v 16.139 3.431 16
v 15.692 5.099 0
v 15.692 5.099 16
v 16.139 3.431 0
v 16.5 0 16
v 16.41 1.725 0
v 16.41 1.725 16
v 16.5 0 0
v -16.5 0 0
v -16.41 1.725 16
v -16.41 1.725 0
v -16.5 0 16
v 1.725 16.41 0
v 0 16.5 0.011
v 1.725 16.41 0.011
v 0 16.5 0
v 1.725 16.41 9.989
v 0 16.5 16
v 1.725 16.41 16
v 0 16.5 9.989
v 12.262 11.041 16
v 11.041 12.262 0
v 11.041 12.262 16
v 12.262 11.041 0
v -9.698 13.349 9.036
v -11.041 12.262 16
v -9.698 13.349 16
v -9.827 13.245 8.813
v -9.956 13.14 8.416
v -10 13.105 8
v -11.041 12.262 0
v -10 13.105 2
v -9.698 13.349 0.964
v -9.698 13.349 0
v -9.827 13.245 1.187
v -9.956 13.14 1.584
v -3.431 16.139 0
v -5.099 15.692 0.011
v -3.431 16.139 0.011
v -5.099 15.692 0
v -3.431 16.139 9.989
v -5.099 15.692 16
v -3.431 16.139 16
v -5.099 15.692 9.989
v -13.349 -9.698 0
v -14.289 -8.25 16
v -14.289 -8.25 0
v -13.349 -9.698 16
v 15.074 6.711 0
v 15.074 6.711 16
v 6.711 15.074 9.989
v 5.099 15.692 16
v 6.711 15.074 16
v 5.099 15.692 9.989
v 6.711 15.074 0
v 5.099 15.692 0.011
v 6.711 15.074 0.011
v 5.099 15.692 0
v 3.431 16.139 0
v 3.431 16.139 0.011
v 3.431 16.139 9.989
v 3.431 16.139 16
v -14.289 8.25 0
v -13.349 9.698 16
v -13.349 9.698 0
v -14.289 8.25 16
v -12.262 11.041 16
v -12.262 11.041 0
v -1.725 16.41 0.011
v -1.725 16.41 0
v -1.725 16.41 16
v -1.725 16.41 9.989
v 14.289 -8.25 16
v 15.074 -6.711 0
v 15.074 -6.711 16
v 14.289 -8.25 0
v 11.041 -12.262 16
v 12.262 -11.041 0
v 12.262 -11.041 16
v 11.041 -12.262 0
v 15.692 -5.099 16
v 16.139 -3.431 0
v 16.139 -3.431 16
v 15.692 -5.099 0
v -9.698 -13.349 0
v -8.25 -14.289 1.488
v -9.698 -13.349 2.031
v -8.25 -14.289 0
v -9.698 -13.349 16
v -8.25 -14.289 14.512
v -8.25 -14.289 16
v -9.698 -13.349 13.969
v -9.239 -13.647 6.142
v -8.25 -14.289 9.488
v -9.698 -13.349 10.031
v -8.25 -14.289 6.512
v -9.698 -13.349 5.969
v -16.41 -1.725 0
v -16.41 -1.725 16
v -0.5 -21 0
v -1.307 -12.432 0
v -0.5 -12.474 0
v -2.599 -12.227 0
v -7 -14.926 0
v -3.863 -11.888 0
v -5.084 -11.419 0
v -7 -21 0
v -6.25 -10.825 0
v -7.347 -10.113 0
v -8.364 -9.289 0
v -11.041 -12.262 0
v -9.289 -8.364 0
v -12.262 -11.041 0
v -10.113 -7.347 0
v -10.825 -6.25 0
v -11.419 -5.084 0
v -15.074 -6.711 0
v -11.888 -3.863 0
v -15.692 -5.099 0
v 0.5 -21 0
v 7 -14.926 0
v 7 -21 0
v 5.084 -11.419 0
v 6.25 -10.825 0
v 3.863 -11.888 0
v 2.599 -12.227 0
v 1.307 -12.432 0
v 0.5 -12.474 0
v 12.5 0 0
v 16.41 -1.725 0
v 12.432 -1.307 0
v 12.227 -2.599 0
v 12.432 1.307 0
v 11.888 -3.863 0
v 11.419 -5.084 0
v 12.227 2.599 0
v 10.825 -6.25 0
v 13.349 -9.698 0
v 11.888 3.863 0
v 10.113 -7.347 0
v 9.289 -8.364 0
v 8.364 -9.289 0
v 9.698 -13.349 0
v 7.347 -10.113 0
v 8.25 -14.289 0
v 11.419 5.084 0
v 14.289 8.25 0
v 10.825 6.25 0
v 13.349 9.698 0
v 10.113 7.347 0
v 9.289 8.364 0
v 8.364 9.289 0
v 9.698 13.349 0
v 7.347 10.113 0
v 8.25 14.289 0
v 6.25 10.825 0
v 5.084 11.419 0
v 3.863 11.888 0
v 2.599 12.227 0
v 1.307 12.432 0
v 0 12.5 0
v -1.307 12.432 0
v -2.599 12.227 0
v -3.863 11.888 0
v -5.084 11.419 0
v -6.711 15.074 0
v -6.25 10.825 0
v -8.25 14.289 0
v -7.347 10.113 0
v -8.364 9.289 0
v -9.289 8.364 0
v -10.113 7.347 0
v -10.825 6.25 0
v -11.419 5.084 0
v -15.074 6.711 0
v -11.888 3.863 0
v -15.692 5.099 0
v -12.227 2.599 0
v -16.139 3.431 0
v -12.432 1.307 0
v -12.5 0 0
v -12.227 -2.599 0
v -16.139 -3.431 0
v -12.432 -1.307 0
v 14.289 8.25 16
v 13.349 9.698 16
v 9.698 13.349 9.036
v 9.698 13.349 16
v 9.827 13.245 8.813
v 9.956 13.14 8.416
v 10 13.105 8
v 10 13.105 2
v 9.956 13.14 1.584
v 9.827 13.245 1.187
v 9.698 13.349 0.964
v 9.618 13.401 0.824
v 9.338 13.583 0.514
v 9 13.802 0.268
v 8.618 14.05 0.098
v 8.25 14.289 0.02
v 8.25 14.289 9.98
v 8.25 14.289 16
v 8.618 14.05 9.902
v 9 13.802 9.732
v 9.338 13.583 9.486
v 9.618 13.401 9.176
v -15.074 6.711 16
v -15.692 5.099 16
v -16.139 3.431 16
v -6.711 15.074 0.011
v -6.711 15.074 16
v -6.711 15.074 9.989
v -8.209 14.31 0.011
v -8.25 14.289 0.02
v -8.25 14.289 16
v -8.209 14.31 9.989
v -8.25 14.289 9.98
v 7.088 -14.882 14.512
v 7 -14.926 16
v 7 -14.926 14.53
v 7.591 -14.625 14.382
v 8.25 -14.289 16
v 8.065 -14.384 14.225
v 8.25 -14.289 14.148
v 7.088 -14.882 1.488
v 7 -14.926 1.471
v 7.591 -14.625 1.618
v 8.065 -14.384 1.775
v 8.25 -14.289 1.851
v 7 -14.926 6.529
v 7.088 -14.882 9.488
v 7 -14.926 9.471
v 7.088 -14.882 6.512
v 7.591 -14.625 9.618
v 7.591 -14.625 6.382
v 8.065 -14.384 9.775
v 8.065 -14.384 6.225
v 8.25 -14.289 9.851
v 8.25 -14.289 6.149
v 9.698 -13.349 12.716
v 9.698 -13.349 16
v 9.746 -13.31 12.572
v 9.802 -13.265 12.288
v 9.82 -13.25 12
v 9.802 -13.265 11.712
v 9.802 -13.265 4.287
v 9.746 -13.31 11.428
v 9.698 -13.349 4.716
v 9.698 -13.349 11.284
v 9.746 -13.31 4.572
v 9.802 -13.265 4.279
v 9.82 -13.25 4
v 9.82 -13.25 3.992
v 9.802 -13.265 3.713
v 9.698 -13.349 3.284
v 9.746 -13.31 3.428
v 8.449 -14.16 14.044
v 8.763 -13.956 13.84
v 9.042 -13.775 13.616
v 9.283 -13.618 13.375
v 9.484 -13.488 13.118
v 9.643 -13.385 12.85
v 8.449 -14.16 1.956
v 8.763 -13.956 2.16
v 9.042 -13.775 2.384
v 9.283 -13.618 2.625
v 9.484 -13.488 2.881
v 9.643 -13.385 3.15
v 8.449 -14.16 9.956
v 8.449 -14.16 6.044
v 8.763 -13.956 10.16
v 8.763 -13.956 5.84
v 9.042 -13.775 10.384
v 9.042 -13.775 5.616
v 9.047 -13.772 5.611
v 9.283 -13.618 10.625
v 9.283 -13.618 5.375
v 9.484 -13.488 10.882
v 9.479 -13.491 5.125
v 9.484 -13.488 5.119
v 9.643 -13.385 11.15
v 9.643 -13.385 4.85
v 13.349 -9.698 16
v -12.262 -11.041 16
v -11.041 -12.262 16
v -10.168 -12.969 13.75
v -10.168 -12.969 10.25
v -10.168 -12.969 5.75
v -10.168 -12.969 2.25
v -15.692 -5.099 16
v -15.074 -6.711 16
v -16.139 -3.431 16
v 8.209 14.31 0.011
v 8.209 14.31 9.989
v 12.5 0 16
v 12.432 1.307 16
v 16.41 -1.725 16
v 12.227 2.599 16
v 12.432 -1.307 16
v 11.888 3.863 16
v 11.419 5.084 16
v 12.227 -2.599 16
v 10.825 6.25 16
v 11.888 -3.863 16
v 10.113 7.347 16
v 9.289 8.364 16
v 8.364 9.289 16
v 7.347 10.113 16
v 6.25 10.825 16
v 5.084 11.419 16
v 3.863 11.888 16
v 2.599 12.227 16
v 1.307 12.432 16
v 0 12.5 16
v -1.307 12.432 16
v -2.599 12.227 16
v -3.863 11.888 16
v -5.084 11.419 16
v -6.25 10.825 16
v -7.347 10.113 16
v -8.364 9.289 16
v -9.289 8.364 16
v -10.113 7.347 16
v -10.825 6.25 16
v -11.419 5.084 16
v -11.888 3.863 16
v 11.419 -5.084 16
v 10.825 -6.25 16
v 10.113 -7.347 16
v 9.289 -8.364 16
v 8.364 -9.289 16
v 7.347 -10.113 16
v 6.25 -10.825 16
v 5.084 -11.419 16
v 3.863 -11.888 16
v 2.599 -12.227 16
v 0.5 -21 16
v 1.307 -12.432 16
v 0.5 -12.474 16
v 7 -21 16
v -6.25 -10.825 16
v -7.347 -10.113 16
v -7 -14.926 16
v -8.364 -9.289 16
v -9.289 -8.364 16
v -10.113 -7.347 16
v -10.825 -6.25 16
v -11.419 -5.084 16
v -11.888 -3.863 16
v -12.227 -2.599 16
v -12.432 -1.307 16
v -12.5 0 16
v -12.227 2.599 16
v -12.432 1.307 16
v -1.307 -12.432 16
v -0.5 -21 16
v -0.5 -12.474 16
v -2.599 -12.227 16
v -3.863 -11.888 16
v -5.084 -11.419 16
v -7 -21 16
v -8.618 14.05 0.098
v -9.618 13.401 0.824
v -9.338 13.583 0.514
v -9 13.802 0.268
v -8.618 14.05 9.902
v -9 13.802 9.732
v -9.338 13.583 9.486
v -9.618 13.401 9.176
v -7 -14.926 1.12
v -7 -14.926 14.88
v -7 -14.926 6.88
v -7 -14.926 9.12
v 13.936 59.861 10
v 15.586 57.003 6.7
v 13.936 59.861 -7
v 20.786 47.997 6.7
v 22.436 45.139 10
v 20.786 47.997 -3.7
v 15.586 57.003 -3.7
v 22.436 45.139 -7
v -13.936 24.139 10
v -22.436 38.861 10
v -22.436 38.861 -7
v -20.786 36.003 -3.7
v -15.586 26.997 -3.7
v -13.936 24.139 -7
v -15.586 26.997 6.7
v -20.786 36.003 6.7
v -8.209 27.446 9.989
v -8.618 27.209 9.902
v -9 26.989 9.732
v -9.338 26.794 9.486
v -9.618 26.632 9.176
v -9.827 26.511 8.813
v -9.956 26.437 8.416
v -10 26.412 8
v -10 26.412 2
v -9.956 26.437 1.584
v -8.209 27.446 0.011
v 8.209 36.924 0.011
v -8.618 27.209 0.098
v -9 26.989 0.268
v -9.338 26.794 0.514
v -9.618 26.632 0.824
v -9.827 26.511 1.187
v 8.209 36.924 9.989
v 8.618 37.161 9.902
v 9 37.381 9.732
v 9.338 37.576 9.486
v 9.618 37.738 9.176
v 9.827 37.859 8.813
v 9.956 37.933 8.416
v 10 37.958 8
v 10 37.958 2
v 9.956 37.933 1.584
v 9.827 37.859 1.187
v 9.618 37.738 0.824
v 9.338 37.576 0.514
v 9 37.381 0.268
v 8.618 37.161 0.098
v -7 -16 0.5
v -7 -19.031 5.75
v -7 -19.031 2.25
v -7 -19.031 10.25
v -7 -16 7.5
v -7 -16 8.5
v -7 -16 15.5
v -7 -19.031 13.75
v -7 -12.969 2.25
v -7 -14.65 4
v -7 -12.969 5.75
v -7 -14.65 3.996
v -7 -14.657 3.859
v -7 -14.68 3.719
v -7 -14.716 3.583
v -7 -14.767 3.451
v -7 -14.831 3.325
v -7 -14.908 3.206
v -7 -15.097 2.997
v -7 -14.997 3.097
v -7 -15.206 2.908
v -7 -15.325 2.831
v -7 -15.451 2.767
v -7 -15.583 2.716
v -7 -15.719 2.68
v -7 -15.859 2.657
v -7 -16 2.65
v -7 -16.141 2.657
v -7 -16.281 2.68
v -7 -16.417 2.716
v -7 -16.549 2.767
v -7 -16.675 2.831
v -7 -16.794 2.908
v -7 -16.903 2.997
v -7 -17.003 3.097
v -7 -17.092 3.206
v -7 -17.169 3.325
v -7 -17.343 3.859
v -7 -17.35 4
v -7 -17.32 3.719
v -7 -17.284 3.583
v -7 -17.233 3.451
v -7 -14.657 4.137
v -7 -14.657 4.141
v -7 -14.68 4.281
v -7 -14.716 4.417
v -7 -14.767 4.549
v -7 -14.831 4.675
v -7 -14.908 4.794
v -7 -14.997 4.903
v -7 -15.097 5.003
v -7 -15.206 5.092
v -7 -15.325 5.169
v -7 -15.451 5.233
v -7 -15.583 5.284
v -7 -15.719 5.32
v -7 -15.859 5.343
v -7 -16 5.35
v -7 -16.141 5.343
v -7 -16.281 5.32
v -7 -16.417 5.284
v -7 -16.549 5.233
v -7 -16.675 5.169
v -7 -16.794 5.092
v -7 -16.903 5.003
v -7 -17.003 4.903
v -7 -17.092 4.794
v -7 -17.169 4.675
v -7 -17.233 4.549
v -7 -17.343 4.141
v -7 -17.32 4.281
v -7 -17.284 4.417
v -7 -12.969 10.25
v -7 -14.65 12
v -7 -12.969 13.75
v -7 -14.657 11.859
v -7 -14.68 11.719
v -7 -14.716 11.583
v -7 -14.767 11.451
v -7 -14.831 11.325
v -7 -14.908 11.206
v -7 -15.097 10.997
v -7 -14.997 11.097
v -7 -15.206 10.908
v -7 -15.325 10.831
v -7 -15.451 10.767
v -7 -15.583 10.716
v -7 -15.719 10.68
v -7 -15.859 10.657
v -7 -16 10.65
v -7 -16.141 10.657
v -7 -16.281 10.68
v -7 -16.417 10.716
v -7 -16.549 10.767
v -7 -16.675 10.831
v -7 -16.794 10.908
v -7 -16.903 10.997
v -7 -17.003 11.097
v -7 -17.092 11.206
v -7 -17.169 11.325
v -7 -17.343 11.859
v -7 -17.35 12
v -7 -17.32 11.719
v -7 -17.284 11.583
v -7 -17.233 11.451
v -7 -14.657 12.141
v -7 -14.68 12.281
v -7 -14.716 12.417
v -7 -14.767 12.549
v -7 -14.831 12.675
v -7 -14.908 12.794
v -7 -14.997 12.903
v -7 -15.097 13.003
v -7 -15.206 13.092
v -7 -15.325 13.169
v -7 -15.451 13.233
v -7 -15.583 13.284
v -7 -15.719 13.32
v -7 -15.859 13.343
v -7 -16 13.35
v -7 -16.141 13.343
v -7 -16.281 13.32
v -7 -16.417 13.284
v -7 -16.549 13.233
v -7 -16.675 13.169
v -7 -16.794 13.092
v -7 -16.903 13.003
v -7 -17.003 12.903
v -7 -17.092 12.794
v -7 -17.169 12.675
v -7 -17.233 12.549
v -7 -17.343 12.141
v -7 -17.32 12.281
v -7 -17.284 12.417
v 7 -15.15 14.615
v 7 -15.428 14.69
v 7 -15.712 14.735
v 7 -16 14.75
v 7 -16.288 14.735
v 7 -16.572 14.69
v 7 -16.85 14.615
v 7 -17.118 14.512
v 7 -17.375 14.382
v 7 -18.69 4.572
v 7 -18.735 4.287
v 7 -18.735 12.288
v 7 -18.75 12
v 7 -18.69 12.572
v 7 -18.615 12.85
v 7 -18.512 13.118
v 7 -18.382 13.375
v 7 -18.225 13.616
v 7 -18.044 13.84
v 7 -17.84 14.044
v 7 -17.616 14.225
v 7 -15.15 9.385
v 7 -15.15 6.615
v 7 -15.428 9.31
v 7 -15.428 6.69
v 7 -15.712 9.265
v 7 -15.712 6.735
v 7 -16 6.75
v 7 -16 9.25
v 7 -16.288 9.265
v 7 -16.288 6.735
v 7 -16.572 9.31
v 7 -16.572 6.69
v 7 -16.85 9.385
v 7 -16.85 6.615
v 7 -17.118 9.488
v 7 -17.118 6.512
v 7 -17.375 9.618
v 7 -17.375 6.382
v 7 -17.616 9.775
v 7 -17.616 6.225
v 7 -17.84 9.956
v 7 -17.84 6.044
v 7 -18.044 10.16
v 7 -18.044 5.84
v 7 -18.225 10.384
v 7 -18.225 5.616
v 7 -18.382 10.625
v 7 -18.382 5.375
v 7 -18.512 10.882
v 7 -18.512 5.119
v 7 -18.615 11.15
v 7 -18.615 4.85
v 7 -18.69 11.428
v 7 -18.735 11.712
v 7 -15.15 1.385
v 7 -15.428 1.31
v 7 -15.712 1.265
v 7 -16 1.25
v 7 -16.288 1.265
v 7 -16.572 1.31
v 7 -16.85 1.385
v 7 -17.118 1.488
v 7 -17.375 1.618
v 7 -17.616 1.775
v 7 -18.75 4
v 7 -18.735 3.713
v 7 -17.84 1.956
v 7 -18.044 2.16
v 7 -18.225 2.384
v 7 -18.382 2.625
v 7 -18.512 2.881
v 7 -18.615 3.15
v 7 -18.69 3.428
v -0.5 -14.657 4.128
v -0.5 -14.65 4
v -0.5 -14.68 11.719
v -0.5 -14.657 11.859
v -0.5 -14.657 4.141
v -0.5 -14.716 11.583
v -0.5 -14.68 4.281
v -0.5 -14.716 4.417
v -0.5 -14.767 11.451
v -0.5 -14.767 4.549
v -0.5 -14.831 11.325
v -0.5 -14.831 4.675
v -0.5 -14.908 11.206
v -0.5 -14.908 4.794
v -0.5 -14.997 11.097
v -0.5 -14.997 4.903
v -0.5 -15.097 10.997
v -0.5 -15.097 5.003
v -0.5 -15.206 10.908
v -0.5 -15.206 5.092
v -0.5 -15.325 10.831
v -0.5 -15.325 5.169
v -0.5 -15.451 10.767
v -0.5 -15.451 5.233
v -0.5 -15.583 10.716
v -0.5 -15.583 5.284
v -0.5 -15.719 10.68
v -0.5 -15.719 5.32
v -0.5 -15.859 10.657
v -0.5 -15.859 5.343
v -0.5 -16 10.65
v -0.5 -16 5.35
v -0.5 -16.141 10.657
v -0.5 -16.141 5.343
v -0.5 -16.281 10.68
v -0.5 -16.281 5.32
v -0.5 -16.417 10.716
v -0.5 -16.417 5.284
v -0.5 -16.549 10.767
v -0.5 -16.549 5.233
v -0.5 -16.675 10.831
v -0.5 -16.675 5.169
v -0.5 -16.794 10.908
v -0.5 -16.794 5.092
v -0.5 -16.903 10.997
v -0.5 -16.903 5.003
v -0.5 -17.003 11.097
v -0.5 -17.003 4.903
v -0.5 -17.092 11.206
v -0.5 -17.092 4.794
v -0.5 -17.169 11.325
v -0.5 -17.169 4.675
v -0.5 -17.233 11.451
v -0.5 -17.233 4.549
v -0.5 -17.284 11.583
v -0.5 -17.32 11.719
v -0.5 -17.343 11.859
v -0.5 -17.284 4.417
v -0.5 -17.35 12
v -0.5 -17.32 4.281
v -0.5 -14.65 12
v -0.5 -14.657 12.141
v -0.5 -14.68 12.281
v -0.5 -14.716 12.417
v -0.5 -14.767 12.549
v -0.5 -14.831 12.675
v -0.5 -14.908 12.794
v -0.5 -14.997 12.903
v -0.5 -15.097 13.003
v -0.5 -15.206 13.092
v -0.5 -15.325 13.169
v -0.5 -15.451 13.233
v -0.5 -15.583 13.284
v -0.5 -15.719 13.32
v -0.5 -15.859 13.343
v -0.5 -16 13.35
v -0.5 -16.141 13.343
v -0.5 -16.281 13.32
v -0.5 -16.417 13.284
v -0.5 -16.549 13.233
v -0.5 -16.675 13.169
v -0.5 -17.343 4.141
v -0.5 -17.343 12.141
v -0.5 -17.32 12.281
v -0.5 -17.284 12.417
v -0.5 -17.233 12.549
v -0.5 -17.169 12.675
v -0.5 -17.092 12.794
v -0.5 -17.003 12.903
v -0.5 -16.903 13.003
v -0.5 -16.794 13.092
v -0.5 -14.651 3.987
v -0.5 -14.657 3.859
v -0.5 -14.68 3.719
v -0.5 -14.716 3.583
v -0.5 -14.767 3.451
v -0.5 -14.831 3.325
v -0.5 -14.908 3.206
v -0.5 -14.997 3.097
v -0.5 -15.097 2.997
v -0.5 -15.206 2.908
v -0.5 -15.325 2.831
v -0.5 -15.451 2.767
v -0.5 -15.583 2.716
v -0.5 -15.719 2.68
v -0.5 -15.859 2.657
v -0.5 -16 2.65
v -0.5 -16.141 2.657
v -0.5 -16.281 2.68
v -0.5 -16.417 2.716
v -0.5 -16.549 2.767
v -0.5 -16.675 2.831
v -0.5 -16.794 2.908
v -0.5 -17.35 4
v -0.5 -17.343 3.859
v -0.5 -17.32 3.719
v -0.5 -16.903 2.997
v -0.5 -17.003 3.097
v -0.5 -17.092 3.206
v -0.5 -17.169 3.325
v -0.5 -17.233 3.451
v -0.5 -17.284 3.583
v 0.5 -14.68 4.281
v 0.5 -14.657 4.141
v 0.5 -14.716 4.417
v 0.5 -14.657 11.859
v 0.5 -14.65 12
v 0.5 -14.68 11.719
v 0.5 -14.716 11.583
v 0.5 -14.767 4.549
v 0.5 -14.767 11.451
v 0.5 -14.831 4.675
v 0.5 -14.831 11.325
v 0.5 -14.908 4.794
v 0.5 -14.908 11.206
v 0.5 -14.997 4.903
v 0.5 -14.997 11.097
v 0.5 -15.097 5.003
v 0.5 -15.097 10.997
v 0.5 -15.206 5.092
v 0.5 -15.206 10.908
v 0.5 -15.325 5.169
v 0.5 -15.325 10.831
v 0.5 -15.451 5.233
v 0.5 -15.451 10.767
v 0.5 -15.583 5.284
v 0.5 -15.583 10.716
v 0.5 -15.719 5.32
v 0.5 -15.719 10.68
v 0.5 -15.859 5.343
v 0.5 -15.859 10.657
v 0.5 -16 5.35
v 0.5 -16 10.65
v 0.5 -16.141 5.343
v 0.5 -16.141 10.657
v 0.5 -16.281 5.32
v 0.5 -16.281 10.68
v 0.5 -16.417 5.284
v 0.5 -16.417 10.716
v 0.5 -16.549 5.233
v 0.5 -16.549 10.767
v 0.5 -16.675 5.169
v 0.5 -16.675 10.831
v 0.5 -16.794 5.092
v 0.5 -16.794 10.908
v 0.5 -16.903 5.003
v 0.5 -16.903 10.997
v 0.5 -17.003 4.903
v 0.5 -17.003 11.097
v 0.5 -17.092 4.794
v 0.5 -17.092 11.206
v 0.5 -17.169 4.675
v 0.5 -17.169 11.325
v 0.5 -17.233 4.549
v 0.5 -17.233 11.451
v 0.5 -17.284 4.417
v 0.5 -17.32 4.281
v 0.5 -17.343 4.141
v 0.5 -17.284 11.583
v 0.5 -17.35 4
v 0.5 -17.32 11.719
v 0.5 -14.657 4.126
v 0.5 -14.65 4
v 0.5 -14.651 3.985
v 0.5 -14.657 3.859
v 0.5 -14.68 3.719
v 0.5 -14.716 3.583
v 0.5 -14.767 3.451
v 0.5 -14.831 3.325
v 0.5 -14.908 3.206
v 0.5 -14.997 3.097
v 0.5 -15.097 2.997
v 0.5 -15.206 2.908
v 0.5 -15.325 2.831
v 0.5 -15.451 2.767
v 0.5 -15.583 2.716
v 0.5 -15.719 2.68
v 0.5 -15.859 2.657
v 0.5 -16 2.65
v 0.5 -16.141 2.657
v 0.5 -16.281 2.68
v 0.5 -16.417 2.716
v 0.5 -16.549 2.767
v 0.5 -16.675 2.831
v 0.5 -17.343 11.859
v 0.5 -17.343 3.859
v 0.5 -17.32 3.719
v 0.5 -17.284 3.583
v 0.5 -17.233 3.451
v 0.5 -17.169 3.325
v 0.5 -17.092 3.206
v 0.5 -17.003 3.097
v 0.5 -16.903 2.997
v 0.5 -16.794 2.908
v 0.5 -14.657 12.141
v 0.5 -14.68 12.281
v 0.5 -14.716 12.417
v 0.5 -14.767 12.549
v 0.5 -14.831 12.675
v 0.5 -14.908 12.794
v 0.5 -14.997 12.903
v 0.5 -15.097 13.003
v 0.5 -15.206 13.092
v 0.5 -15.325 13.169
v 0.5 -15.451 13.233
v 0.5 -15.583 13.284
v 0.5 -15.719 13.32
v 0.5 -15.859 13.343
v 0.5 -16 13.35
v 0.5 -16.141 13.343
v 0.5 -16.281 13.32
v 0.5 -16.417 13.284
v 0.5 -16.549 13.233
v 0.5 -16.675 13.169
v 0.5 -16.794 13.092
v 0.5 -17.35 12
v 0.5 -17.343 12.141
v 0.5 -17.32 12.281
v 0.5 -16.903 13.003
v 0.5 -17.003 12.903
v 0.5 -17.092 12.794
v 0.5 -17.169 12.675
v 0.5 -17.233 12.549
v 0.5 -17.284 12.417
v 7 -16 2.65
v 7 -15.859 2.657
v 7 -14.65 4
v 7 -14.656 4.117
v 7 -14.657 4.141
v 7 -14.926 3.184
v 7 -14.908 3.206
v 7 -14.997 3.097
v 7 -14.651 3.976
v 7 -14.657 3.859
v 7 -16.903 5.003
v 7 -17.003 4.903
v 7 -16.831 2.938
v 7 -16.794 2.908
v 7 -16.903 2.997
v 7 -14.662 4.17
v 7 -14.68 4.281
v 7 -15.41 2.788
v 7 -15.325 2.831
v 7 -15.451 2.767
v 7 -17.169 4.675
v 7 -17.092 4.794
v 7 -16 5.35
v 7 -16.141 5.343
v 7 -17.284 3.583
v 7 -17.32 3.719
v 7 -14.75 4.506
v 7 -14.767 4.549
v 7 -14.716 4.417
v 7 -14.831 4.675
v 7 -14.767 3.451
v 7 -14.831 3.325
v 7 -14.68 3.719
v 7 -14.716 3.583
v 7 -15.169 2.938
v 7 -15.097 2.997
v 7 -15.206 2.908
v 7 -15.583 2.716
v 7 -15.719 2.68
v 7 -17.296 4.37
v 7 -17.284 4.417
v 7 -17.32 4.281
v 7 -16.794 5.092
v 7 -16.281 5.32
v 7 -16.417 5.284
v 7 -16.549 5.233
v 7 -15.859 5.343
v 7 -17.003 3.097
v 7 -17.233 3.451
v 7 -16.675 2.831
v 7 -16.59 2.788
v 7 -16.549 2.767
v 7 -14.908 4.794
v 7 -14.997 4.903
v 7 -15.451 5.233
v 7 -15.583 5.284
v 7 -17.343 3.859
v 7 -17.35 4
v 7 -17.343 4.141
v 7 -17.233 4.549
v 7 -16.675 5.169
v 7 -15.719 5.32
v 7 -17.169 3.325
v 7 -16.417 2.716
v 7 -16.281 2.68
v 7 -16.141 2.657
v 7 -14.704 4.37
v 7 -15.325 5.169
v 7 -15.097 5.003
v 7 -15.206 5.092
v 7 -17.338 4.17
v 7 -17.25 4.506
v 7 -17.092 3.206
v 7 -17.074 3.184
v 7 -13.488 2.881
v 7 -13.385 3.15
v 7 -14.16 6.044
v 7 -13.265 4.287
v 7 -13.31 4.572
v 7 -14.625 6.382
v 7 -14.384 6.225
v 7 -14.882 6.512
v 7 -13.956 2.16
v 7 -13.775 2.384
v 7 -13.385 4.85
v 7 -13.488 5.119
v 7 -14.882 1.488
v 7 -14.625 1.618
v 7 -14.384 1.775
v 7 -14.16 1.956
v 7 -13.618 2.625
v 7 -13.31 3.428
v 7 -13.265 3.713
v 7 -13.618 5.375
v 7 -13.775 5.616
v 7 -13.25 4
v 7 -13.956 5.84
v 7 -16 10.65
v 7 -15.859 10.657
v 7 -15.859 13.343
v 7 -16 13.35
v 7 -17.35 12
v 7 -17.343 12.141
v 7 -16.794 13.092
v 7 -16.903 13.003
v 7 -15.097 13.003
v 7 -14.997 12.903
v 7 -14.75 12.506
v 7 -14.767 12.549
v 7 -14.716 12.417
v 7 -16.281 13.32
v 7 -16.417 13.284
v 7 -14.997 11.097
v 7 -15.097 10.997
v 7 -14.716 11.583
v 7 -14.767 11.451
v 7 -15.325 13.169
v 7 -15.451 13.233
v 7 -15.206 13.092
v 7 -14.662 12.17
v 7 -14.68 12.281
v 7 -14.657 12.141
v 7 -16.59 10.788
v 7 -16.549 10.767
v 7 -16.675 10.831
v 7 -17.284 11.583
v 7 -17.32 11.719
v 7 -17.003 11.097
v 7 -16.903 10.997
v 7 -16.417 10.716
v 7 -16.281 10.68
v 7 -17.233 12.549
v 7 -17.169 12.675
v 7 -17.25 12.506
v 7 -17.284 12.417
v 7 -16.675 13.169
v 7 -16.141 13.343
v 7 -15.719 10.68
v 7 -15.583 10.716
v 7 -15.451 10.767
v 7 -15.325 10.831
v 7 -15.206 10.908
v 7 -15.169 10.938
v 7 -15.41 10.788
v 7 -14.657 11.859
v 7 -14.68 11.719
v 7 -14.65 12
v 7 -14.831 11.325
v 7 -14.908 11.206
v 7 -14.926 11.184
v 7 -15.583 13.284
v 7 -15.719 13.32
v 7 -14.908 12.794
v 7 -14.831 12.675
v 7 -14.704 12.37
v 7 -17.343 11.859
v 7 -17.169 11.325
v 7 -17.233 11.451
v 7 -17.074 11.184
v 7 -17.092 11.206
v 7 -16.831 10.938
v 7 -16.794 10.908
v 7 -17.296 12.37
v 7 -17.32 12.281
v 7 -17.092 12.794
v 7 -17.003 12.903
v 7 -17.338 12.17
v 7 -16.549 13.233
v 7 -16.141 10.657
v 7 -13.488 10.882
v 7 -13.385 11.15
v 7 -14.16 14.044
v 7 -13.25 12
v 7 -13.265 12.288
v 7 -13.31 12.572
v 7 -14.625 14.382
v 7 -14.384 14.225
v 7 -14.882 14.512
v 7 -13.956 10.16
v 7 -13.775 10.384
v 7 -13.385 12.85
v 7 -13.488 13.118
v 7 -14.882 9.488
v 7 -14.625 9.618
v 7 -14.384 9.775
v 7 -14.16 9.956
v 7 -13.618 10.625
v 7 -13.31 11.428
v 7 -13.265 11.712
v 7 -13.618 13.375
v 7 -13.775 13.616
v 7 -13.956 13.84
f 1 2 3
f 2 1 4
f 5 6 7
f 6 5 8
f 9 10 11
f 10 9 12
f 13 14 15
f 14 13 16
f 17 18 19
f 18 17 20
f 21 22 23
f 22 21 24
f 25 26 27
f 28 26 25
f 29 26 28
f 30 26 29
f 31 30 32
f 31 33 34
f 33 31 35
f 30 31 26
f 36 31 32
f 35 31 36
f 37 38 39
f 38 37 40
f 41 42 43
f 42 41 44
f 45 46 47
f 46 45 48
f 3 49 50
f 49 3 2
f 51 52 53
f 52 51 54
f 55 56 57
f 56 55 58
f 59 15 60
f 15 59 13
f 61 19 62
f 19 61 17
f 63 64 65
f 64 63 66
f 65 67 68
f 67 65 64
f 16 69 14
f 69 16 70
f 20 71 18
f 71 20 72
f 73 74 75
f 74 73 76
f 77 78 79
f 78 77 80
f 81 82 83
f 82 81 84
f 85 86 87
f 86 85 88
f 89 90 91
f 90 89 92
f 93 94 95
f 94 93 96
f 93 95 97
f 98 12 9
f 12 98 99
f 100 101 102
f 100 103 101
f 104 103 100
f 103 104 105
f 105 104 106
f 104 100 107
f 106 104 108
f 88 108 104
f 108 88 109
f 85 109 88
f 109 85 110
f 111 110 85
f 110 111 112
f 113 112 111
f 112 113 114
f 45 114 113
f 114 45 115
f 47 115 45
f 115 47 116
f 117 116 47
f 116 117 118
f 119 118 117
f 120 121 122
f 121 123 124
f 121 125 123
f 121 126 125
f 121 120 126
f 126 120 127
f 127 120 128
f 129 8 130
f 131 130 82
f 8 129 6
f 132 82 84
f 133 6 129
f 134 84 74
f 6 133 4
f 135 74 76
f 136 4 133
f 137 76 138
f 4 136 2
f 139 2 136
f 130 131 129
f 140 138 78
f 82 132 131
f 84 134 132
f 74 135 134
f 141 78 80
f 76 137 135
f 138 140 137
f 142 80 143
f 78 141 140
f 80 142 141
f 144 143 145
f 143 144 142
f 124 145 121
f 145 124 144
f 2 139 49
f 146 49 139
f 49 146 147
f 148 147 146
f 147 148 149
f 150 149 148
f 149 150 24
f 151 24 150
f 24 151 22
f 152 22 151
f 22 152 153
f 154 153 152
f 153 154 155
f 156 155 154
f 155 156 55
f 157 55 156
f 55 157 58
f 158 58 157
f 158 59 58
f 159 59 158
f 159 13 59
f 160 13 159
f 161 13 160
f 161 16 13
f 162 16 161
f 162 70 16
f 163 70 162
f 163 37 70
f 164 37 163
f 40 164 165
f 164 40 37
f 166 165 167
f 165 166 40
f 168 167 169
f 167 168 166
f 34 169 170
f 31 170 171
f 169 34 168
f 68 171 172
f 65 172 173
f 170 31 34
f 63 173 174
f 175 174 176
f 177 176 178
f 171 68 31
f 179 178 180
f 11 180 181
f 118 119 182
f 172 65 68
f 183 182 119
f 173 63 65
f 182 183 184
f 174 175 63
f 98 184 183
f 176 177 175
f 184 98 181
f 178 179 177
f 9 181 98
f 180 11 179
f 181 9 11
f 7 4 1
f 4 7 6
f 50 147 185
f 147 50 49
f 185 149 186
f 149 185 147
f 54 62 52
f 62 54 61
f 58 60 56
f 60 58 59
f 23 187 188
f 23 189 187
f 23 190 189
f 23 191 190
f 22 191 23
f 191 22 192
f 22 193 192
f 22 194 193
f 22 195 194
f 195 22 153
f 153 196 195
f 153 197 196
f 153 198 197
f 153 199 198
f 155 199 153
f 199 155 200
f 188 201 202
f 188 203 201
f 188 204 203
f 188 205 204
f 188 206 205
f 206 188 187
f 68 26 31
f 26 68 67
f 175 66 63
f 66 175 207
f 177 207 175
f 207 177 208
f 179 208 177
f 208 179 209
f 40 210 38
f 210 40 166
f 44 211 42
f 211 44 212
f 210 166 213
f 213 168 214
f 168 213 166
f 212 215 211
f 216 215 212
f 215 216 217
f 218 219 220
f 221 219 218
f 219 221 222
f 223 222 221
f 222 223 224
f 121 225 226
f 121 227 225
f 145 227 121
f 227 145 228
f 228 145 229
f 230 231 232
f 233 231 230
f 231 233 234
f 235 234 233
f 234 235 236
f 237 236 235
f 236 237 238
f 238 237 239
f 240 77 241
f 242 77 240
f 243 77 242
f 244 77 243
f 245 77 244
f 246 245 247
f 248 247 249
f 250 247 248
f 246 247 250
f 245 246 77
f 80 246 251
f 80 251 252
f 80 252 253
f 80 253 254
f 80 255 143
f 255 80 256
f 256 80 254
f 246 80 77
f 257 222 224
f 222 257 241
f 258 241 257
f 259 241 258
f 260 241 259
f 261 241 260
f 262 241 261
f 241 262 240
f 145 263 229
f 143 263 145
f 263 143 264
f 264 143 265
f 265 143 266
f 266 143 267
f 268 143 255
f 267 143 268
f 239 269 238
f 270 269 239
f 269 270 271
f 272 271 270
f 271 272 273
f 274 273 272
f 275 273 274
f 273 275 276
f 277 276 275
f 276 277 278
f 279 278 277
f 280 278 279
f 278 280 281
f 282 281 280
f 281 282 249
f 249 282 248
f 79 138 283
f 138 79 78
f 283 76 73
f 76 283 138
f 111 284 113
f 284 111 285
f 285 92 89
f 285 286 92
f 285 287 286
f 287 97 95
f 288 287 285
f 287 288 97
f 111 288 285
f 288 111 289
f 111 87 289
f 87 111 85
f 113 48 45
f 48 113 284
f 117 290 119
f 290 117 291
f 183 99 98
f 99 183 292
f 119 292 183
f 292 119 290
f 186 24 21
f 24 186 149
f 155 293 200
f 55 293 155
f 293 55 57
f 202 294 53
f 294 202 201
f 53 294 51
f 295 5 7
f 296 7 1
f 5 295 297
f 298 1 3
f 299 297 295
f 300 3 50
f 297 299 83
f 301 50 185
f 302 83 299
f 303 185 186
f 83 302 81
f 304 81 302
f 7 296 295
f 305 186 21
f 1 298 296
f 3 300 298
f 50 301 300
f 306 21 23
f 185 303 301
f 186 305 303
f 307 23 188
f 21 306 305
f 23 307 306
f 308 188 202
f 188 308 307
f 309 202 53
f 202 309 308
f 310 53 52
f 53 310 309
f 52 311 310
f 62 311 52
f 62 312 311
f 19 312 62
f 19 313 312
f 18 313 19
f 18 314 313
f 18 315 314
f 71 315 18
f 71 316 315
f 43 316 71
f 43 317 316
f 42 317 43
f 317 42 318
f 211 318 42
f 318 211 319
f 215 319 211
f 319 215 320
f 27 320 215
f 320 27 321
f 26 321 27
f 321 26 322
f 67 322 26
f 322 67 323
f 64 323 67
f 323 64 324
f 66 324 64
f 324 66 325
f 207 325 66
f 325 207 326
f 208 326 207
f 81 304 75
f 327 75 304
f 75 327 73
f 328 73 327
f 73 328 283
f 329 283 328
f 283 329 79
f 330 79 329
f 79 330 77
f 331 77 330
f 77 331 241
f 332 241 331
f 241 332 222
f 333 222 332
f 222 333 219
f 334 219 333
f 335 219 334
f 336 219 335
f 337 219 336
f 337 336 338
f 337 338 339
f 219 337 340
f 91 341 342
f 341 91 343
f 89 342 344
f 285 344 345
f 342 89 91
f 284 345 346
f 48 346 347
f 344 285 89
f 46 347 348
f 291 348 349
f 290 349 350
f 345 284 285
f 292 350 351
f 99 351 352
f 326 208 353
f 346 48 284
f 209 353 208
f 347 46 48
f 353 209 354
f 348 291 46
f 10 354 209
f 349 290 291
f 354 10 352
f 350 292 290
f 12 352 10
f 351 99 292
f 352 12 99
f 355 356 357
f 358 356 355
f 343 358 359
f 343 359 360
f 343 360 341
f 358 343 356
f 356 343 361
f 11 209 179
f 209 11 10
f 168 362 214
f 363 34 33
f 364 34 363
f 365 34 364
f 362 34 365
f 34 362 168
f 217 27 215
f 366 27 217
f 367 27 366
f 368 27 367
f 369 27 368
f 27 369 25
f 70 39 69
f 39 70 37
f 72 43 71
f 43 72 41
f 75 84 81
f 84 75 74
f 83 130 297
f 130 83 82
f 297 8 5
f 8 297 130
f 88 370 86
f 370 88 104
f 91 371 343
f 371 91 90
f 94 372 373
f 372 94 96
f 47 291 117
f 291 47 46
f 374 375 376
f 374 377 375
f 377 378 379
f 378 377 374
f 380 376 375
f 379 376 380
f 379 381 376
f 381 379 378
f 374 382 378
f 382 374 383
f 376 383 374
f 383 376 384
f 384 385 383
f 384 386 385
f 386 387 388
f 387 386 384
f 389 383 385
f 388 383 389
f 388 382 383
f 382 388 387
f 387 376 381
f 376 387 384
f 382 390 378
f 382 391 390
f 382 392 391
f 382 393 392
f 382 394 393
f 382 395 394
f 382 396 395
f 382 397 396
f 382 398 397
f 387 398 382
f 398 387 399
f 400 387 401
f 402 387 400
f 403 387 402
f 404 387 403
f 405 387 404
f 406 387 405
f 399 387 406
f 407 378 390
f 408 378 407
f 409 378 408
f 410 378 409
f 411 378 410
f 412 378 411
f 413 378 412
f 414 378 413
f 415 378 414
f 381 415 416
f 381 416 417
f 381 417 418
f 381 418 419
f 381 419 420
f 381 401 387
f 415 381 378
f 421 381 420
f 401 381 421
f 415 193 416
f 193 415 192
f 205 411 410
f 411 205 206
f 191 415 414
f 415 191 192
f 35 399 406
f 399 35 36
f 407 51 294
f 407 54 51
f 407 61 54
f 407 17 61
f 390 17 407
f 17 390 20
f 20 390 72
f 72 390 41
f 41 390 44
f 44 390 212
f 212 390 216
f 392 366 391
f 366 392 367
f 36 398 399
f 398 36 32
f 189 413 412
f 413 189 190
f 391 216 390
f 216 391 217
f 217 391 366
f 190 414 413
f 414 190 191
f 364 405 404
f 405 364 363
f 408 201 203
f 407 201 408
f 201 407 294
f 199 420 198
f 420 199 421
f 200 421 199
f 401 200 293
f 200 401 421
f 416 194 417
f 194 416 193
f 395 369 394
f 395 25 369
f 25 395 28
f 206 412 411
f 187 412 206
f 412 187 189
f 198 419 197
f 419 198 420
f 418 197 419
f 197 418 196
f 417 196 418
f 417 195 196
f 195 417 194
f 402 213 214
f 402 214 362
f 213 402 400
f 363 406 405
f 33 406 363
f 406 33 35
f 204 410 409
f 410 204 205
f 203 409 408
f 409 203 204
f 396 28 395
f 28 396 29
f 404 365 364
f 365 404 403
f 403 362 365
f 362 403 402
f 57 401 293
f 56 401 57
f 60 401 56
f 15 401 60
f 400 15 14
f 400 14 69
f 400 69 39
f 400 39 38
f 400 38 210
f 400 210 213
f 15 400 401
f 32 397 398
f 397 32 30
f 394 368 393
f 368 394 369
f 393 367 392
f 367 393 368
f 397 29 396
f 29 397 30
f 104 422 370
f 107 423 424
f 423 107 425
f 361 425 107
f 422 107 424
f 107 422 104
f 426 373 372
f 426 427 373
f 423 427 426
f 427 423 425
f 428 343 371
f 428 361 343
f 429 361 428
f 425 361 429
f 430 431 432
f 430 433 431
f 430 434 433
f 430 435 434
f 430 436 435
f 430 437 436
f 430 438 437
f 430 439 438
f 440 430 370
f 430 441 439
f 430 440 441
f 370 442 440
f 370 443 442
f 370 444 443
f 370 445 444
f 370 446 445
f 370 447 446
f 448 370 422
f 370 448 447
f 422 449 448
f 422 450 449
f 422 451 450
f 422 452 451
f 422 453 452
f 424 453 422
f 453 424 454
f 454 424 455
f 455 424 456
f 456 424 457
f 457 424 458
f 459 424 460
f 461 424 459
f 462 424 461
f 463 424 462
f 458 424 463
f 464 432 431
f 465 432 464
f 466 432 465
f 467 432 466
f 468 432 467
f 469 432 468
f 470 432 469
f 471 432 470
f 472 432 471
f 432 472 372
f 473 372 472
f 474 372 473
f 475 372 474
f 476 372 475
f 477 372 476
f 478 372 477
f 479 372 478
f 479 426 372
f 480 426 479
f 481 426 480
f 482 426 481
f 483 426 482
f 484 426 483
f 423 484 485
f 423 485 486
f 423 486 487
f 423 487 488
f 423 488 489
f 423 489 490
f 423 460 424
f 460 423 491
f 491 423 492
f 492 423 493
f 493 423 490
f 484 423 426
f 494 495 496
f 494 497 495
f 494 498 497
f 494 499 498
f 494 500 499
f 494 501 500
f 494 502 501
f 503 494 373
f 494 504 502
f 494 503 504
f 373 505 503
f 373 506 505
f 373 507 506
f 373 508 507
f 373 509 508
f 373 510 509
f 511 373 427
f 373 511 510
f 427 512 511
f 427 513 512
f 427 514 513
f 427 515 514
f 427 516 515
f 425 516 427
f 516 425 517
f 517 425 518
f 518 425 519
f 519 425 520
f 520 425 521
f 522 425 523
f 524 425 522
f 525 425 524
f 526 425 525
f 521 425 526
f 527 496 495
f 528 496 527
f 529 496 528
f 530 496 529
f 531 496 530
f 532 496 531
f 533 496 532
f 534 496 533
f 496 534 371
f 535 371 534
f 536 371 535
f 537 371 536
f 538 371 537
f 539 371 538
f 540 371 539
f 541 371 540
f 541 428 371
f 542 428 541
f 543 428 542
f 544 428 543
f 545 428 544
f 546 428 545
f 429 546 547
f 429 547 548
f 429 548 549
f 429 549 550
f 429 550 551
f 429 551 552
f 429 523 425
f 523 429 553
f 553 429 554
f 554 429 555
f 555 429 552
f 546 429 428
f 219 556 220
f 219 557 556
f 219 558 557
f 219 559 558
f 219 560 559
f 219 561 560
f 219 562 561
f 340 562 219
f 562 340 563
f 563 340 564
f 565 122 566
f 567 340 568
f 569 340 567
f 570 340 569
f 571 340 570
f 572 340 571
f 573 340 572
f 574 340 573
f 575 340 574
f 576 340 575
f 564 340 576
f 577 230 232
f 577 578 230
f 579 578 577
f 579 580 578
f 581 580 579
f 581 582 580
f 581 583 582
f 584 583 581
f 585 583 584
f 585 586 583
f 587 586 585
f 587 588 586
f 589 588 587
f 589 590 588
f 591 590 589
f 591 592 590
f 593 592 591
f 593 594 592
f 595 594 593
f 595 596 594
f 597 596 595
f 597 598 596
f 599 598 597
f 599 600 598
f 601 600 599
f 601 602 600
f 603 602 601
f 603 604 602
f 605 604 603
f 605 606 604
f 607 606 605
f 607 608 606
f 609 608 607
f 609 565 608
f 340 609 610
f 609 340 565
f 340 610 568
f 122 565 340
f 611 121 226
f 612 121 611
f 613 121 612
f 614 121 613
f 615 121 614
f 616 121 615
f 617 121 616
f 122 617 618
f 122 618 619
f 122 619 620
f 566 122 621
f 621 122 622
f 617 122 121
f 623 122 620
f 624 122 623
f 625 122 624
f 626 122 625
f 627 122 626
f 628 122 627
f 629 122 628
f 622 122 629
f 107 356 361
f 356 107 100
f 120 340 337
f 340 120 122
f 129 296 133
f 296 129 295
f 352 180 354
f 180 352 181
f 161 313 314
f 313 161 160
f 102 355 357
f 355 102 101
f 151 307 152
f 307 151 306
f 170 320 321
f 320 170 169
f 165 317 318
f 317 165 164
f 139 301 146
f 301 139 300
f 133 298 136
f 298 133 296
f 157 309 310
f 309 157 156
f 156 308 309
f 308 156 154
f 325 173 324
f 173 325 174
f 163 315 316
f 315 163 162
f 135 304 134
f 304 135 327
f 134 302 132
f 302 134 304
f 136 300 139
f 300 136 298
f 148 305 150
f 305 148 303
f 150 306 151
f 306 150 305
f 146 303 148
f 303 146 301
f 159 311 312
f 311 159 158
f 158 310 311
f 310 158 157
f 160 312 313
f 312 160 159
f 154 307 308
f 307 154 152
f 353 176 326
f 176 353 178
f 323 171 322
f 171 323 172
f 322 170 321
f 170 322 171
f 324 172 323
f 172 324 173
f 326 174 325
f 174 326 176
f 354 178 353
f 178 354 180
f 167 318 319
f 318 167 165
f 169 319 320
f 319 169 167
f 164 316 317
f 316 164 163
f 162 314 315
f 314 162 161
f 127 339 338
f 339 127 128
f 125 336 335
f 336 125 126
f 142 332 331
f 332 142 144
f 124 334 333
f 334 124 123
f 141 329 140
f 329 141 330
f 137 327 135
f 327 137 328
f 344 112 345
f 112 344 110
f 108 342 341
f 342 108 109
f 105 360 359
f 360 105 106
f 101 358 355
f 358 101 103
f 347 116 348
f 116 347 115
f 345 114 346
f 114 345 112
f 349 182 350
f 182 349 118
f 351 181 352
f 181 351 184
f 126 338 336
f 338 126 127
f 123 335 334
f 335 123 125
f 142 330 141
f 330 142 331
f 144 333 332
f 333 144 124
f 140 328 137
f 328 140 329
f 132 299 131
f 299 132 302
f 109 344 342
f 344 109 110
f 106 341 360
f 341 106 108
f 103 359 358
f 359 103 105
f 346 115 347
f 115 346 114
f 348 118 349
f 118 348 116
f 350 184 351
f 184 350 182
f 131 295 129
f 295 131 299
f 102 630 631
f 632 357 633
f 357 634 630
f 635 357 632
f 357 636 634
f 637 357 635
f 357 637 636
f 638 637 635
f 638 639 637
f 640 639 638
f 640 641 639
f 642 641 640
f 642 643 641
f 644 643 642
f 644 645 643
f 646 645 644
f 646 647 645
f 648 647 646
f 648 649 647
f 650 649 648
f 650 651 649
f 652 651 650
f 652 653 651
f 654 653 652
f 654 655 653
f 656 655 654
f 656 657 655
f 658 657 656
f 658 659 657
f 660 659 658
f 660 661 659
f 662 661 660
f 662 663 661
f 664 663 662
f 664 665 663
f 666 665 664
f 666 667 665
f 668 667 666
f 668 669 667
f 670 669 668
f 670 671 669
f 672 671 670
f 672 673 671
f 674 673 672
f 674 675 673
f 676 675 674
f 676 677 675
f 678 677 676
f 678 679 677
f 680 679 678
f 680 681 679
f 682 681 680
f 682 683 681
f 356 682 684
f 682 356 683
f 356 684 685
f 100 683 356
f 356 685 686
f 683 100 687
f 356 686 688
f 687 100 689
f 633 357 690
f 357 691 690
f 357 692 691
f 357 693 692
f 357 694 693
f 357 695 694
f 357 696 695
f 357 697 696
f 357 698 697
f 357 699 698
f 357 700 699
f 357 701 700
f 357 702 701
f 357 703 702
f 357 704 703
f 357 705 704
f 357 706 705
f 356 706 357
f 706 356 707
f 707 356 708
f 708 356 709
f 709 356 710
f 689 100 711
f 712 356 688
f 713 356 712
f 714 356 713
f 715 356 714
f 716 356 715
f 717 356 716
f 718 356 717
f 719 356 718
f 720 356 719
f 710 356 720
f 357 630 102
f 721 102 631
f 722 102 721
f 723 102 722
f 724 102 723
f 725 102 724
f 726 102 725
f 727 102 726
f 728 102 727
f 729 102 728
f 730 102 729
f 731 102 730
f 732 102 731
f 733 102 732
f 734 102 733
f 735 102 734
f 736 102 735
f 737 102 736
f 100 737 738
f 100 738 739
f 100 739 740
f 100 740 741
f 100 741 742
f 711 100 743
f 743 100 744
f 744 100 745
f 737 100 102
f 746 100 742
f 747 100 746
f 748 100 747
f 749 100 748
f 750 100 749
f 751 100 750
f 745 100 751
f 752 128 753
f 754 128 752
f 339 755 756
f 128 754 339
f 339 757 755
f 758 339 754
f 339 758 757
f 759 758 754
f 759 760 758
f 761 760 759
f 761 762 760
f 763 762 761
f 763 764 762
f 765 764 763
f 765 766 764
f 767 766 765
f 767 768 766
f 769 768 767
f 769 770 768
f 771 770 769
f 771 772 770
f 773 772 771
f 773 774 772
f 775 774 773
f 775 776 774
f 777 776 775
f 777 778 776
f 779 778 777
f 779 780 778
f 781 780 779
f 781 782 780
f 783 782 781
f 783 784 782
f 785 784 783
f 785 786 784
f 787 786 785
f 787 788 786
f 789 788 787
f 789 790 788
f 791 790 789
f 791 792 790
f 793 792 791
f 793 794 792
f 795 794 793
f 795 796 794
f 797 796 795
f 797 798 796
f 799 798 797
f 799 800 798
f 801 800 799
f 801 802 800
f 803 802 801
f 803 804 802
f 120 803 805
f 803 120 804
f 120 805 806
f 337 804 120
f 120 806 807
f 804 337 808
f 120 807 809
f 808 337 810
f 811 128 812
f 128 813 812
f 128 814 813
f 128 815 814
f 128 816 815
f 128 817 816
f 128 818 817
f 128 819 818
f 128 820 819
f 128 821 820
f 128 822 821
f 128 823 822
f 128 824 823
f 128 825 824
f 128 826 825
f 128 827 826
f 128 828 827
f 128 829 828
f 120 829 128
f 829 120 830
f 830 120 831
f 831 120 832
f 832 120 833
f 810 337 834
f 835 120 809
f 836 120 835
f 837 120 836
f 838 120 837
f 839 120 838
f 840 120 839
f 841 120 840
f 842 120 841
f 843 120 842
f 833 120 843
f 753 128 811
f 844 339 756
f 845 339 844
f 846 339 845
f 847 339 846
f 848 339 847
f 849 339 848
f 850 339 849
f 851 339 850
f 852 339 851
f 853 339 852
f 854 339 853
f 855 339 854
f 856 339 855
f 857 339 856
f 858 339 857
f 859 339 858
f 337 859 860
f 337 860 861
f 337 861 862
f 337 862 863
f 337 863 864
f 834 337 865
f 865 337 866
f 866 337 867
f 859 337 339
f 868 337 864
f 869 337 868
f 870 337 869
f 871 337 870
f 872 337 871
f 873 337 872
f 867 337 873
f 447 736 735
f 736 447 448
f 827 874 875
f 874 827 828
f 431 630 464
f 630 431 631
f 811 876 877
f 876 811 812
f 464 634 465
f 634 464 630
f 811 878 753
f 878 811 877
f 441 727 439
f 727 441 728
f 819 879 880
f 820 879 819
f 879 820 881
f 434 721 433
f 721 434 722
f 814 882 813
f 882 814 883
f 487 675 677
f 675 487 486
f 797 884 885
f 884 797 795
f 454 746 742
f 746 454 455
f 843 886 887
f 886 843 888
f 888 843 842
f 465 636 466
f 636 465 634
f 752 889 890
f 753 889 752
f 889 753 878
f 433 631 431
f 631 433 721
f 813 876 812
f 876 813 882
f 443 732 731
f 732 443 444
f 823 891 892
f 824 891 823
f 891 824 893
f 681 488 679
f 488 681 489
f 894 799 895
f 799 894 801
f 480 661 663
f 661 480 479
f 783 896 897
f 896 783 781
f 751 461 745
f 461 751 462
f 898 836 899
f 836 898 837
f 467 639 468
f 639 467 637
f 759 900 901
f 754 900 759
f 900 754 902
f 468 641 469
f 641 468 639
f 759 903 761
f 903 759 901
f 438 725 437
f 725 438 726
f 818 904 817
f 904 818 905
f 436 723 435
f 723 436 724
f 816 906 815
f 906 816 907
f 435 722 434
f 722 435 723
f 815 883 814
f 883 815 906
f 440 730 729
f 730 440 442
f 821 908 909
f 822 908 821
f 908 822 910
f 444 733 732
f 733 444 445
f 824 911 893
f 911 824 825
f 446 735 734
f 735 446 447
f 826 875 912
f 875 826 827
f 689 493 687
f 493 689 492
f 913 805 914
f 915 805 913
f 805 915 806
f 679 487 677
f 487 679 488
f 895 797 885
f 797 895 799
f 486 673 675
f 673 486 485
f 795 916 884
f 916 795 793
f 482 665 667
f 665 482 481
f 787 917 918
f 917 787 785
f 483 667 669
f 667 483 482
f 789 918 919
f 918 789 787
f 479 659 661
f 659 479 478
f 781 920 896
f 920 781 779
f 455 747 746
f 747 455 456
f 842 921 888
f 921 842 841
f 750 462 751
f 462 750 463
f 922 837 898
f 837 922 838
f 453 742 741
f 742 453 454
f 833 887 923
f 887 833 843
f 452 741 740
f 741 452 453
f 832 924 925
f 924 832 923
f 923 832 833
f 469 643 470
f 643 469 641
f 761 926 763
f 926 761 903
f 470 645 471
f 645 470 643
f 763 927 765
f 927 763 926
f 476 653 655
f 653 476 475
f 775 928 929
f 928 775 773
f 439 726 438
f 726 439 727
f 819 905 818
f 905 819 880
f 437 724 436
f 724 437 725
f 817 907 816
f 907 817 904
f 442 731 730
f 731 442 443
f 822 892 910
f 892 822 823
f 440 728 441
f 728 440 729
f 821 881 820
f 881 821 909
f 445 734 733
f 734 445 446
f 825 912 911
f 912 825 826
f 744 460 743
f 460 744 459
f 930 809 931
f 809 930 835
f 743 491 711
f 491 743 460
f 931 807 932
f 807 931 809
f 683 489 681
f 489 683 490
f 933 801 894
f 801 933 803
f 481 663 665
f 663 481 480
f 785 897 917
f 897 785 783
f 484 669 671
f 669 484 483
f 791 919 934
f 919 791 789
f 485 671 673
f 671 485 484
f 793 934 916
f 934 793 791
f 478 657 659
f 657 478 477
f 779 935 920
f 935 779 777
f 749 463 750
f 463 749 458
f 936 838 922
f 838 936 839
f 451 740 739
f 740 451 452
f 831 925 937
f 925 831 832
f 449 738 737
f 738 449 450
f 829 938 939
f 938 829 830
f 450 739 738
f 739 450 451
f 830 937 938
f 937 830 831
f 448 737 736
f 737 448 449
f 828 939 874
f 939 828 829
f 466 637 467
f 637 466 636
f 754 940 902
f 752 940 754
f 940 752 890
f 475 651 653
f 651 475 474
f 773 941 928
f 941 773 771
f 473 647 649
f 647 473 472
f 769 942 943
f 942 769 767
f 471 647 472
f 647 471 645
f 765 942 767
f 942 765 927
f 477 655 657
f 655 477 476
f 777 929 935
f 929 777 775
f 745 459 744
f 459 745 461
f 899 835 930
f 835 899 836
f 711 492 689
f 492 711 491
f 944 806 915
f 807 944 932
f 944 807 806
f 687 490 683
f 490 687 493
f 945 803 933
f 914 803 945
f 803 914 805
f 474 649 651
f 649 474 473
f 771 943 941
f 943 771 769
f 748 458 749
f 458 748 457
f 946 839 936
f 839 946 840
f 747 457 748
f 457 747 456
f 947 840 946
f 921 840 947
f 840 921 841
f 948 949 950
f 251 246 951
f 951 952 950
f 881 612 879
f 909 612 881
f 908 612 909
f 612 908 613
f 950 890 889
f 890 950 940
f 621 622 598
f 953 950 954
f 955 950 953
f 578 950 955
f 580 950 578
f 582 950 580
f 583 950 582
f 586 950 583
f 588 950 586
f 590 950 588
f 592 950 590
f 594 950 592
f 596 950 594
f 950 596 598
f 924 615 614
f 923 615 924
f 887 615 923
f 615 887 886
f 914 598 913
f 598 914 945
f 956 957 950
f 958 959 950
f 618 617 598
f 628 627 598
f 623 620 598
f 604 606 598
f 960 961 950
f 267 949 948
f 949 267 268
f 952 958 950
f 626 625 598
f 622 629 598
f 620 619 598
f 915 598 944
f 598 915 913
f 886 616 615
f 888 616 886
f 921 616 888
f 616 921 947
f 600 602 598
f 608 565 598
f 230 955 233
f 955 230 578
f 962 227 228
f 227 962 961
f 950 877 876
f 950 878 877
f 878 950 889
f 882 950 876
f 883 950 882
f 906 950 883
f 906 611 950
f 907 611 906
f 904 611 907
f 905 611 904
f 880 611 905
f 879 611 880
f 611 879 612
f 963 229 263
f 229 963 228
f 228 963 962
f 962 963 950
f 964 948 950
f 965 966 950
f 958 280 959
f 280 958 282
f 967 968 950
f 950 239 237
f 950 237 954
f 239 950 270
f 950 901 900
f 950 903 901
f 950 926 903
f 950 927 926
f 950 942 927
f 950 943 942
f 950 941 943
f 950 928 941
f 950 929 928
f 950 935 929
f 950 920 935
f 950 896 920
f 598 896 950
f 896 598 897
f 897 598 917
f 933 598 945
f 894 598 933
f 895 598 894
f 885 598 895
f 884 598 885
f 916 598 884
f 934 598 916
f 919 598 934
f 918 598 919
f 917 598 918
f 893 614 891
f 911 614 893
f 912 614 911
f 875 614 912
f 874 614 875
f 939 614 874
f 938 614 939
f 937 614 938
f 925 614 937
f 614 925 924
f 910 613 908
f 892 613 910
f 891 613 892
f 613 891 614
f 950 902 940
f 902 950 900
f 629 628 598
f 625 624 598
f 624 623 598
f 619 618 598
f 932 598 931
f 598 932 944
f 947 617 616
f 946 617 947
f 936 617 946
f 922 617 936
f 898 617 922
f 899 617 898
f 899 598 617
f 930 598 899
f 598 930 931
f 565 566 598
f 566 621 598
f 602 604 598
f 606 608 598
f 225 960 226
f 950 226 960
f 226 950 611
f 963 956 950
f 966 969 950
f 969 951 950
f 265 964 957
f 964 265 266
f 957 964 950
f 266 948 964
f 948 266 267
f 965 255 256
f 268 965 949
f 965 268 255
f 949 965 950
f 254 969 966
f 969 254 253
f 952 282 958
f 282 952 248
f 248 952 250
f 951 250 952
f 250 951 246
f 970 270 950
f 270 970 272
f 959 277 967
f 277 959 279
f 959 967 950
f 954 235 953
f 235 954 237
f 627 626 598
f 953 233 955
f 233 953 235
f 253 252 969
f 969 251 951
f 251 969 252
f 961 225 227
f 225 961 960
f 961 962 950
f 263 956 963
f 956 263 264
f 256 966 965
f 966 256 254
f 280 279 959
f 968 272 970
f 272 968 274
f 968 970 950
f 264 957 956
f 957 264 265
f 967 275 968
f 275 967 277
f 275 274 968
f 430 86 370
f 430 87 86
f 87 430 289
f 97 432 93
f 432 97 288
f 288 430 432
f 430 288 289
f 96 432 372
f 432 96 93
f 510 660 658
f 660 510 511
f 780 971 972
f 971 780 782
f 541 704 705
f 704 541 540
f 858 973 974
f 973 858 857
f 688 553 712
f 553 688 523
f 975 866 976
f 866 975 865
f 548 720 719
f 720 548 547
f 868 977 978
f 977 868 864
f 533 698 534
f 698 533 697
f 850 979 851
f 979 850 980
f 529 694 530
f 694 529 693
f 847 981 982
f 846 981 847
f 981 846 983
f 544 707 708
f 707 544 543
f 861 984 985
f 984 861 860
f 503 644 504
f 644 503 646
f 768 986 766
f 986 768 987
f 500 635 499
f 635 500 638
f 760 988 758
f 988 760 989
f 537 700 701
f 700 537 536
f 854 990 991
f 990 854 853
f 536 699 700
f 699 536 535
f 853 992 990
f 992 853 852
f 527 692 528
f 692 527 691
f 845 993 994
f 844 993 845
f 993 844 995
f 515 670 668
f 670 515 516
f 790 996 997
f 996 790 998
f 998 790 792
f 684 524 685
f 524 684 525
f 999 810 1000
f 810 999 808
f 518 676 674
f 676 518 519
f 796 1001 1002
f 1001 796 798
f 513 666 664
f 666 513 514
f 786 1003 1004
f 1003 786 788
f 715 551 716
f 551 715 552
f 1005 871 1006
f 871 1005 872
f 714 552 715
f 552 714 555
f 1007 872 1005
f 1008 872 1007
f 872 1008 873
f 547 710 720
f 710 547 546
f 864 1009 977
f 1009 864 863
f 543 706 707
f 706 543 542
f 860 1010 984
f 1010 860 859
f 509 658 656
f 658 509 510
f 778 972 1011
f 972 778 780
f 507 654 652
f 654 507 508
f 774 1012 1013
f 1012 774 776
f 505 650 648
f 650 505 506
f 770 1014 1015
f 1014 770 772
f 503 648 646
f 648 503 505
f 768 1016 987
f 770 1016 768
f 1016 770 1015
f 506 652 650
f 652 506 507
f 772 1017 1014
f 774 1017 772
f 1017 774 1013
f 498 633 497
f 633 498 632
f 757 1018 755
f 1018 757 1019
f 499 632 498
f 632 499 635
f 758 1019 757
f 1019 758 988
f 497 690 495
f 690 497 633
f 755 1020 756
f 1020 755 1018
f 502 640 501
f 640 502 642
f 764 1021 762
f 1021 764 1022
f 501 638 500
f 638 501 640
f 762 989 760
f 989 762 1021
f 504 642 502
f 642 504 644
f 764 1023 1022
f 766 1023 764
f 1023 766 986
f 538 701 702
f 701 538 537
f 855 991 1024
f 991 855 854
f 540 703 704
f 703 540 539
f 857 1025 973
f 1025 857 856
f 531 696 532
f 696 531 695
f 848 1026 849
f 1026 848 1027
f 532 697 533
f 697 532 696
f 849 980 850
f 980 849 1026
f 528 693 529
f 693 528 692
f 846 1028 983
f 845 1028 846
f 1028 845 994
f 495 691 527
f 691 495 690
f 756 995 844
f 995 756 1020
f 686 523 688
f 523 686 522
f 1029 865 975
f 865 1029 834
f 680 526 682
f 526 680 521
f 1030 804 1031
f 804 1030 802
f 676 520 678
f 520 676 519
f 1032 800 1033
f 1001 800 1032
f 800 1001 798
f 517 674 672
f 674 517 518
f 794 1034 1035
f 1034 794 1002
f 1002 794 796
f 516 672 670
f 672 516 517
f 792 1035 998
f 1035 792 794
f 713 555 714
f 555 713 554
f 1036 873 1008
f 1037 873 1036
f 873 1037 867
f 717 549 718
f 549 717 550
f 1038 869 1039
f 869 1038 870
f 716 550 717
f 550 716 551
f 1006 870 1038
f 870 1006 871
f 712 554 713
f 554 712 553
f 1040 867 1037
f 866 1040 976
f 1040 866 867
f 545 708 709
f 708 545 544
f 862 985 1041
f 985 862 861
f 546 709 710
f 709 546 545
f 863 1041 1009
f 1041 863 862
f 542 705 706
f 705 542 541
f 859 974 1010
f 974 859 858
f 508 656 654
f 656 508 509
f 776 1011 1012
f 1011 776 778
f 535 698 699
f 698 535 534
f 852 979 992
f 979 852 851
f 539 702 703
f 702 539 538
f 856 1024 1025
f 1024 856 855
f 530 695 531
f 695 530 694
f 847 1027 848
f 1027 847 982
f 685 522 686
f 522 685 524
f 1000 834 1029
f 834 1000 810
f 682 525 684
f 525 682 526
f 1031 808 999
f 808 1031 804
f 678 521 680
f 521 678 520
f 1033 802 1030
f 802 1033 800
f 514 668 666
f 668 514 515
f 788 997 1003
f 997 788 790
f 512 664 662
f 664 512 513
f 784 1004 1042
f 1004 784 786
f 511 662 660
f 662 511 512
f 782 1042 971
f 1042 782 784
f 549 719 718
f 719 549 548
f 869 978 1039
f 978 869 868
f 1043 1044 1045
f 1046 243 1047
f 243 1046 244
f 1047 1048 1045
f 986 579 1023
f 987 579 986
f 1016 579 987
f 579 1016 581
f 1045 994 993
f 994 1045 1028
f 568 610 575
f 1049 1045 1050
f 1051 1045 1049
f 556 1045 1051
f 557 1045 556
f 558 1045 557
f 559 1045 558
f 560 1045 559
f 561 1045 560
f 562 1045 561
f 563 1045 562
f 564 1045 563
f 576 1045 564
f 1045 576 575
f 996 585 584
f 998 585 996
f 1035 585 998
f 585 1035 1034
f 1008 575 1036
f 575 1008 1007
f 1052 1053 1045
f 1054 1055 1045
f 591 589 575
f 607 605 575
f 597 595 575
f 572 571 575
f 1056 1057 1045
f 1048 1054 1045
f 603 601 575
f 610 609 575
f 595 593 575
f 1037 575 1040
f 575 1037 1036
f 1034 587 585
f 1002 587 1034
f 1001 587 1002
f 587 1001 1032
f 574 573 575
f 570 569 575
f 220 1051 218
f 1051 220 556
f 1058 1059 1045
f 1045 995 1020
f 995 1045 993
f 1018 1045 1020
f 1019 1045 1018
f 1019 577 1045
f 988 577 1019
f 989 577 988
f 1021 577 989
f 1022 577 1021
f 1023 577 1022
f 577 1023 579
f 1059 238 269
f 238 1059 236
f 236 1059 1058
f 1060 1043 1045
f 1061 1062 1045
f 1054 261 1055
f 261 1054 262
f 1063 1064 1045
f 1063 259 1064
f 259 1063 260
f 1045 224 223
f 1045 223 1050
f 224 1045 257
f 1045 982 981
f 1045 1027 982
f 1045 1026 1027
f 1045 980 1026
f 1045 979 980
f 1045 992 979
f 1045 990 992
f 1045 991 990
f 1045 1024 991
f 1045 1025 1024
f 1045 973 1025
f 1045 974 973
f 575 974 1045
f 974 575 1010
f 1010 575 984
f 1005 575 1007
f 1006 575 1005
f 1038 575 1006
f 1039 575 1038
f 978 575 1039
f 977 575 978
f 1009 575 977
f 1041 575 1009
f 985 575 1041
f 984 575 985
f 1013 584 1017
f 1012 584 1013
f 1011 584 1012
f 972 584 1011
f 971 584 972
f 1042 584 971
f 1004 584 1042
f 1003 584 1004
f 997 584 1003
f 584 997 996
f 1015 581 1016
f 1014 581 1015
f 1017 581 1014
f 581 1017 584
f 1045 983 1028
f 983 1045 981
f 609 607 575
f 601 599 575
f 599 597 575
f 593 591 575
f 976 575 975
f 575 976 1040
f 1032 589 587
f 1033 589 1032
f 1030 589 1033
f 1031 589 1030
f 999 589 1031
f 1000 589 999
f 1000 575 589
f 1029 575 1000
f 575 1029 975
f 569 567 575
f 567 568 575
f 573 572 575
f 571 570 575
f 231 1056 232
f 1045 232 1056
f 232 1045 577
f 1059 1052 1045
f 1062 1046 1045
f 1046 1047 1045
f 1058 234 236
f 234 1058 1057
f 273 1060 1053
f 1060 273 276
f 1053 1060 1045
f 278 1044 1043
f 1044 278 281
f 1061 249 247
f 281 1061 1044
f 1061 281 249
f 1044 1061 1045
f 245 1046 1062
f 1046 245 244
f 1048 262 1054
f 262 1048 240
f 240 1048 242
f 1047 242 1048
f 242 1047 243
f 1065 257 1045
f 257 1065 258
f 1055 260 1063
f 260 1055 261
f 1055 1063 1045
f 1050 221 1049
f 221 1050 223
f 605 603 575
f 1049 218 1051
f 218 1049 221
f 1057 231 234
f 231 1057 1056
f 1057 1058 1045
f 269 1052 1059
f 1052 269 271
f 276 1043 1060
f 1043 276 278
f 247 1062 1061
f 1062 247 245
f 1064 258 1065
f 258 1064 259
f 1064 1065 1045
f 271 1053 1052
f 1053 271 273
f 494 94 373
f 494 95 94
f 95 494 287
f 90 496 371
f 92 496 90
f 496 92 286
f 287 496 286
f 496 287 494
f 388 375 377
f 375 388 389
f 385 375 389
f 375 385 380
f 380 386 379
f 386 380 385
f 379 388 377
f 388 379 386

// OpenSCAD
$fn=60;

difference(){
union(){
cylinder(d=33,h=16);
translate([0,42,1.5])rotate([0,0,30])
cube([42,17,17],center=true);
translate([-8,9,2])
minkowski(){
sphere(d=4,$fn=30);
cube(size=[16,32,6]);
}
translate([-7,-21,0]) cube(size=[14,8,16]);
}
translate([0,0,-1]) cylinder(d=25,h=22);
translate([-.5,-25,-1]) cube(size=[1,20,22]);

translate ([-10,-16,4])rotate([0,90,0])
cylinder(d=2.7,h=100);
translate ([7,-16,4])rotate([0,90,0])
cylinder(d=5.5,h=100);
translate ([-17,-16,4])rotate([0,90,0])
cylinder(d=7,h=10,$fn=6);

translate ([-10,-16,12])rotate([0,90,0])
cylinder(d=2.7,h=100);
translate ([7,-16,12])rotate([0,90,0])
cylinder(d=5.5,h=100);
translate ([-17,-16,12])rotate([0,90,0])
cylinder(d=7,h=10,$fn=6);

translate([0,60,15])rotate([-90,0,0])
cylinder(d=3,h=100);
translate([0,56,15])rotate([-90,0,0])
cylinder(d=6.5,h=10,$fn=6);

translate([0,90,0])cube([60,40,60],center=true);
translate([0,42,1.5])rotate([0,0,30])
cube([43,10.4,10.4],center=true);
}
